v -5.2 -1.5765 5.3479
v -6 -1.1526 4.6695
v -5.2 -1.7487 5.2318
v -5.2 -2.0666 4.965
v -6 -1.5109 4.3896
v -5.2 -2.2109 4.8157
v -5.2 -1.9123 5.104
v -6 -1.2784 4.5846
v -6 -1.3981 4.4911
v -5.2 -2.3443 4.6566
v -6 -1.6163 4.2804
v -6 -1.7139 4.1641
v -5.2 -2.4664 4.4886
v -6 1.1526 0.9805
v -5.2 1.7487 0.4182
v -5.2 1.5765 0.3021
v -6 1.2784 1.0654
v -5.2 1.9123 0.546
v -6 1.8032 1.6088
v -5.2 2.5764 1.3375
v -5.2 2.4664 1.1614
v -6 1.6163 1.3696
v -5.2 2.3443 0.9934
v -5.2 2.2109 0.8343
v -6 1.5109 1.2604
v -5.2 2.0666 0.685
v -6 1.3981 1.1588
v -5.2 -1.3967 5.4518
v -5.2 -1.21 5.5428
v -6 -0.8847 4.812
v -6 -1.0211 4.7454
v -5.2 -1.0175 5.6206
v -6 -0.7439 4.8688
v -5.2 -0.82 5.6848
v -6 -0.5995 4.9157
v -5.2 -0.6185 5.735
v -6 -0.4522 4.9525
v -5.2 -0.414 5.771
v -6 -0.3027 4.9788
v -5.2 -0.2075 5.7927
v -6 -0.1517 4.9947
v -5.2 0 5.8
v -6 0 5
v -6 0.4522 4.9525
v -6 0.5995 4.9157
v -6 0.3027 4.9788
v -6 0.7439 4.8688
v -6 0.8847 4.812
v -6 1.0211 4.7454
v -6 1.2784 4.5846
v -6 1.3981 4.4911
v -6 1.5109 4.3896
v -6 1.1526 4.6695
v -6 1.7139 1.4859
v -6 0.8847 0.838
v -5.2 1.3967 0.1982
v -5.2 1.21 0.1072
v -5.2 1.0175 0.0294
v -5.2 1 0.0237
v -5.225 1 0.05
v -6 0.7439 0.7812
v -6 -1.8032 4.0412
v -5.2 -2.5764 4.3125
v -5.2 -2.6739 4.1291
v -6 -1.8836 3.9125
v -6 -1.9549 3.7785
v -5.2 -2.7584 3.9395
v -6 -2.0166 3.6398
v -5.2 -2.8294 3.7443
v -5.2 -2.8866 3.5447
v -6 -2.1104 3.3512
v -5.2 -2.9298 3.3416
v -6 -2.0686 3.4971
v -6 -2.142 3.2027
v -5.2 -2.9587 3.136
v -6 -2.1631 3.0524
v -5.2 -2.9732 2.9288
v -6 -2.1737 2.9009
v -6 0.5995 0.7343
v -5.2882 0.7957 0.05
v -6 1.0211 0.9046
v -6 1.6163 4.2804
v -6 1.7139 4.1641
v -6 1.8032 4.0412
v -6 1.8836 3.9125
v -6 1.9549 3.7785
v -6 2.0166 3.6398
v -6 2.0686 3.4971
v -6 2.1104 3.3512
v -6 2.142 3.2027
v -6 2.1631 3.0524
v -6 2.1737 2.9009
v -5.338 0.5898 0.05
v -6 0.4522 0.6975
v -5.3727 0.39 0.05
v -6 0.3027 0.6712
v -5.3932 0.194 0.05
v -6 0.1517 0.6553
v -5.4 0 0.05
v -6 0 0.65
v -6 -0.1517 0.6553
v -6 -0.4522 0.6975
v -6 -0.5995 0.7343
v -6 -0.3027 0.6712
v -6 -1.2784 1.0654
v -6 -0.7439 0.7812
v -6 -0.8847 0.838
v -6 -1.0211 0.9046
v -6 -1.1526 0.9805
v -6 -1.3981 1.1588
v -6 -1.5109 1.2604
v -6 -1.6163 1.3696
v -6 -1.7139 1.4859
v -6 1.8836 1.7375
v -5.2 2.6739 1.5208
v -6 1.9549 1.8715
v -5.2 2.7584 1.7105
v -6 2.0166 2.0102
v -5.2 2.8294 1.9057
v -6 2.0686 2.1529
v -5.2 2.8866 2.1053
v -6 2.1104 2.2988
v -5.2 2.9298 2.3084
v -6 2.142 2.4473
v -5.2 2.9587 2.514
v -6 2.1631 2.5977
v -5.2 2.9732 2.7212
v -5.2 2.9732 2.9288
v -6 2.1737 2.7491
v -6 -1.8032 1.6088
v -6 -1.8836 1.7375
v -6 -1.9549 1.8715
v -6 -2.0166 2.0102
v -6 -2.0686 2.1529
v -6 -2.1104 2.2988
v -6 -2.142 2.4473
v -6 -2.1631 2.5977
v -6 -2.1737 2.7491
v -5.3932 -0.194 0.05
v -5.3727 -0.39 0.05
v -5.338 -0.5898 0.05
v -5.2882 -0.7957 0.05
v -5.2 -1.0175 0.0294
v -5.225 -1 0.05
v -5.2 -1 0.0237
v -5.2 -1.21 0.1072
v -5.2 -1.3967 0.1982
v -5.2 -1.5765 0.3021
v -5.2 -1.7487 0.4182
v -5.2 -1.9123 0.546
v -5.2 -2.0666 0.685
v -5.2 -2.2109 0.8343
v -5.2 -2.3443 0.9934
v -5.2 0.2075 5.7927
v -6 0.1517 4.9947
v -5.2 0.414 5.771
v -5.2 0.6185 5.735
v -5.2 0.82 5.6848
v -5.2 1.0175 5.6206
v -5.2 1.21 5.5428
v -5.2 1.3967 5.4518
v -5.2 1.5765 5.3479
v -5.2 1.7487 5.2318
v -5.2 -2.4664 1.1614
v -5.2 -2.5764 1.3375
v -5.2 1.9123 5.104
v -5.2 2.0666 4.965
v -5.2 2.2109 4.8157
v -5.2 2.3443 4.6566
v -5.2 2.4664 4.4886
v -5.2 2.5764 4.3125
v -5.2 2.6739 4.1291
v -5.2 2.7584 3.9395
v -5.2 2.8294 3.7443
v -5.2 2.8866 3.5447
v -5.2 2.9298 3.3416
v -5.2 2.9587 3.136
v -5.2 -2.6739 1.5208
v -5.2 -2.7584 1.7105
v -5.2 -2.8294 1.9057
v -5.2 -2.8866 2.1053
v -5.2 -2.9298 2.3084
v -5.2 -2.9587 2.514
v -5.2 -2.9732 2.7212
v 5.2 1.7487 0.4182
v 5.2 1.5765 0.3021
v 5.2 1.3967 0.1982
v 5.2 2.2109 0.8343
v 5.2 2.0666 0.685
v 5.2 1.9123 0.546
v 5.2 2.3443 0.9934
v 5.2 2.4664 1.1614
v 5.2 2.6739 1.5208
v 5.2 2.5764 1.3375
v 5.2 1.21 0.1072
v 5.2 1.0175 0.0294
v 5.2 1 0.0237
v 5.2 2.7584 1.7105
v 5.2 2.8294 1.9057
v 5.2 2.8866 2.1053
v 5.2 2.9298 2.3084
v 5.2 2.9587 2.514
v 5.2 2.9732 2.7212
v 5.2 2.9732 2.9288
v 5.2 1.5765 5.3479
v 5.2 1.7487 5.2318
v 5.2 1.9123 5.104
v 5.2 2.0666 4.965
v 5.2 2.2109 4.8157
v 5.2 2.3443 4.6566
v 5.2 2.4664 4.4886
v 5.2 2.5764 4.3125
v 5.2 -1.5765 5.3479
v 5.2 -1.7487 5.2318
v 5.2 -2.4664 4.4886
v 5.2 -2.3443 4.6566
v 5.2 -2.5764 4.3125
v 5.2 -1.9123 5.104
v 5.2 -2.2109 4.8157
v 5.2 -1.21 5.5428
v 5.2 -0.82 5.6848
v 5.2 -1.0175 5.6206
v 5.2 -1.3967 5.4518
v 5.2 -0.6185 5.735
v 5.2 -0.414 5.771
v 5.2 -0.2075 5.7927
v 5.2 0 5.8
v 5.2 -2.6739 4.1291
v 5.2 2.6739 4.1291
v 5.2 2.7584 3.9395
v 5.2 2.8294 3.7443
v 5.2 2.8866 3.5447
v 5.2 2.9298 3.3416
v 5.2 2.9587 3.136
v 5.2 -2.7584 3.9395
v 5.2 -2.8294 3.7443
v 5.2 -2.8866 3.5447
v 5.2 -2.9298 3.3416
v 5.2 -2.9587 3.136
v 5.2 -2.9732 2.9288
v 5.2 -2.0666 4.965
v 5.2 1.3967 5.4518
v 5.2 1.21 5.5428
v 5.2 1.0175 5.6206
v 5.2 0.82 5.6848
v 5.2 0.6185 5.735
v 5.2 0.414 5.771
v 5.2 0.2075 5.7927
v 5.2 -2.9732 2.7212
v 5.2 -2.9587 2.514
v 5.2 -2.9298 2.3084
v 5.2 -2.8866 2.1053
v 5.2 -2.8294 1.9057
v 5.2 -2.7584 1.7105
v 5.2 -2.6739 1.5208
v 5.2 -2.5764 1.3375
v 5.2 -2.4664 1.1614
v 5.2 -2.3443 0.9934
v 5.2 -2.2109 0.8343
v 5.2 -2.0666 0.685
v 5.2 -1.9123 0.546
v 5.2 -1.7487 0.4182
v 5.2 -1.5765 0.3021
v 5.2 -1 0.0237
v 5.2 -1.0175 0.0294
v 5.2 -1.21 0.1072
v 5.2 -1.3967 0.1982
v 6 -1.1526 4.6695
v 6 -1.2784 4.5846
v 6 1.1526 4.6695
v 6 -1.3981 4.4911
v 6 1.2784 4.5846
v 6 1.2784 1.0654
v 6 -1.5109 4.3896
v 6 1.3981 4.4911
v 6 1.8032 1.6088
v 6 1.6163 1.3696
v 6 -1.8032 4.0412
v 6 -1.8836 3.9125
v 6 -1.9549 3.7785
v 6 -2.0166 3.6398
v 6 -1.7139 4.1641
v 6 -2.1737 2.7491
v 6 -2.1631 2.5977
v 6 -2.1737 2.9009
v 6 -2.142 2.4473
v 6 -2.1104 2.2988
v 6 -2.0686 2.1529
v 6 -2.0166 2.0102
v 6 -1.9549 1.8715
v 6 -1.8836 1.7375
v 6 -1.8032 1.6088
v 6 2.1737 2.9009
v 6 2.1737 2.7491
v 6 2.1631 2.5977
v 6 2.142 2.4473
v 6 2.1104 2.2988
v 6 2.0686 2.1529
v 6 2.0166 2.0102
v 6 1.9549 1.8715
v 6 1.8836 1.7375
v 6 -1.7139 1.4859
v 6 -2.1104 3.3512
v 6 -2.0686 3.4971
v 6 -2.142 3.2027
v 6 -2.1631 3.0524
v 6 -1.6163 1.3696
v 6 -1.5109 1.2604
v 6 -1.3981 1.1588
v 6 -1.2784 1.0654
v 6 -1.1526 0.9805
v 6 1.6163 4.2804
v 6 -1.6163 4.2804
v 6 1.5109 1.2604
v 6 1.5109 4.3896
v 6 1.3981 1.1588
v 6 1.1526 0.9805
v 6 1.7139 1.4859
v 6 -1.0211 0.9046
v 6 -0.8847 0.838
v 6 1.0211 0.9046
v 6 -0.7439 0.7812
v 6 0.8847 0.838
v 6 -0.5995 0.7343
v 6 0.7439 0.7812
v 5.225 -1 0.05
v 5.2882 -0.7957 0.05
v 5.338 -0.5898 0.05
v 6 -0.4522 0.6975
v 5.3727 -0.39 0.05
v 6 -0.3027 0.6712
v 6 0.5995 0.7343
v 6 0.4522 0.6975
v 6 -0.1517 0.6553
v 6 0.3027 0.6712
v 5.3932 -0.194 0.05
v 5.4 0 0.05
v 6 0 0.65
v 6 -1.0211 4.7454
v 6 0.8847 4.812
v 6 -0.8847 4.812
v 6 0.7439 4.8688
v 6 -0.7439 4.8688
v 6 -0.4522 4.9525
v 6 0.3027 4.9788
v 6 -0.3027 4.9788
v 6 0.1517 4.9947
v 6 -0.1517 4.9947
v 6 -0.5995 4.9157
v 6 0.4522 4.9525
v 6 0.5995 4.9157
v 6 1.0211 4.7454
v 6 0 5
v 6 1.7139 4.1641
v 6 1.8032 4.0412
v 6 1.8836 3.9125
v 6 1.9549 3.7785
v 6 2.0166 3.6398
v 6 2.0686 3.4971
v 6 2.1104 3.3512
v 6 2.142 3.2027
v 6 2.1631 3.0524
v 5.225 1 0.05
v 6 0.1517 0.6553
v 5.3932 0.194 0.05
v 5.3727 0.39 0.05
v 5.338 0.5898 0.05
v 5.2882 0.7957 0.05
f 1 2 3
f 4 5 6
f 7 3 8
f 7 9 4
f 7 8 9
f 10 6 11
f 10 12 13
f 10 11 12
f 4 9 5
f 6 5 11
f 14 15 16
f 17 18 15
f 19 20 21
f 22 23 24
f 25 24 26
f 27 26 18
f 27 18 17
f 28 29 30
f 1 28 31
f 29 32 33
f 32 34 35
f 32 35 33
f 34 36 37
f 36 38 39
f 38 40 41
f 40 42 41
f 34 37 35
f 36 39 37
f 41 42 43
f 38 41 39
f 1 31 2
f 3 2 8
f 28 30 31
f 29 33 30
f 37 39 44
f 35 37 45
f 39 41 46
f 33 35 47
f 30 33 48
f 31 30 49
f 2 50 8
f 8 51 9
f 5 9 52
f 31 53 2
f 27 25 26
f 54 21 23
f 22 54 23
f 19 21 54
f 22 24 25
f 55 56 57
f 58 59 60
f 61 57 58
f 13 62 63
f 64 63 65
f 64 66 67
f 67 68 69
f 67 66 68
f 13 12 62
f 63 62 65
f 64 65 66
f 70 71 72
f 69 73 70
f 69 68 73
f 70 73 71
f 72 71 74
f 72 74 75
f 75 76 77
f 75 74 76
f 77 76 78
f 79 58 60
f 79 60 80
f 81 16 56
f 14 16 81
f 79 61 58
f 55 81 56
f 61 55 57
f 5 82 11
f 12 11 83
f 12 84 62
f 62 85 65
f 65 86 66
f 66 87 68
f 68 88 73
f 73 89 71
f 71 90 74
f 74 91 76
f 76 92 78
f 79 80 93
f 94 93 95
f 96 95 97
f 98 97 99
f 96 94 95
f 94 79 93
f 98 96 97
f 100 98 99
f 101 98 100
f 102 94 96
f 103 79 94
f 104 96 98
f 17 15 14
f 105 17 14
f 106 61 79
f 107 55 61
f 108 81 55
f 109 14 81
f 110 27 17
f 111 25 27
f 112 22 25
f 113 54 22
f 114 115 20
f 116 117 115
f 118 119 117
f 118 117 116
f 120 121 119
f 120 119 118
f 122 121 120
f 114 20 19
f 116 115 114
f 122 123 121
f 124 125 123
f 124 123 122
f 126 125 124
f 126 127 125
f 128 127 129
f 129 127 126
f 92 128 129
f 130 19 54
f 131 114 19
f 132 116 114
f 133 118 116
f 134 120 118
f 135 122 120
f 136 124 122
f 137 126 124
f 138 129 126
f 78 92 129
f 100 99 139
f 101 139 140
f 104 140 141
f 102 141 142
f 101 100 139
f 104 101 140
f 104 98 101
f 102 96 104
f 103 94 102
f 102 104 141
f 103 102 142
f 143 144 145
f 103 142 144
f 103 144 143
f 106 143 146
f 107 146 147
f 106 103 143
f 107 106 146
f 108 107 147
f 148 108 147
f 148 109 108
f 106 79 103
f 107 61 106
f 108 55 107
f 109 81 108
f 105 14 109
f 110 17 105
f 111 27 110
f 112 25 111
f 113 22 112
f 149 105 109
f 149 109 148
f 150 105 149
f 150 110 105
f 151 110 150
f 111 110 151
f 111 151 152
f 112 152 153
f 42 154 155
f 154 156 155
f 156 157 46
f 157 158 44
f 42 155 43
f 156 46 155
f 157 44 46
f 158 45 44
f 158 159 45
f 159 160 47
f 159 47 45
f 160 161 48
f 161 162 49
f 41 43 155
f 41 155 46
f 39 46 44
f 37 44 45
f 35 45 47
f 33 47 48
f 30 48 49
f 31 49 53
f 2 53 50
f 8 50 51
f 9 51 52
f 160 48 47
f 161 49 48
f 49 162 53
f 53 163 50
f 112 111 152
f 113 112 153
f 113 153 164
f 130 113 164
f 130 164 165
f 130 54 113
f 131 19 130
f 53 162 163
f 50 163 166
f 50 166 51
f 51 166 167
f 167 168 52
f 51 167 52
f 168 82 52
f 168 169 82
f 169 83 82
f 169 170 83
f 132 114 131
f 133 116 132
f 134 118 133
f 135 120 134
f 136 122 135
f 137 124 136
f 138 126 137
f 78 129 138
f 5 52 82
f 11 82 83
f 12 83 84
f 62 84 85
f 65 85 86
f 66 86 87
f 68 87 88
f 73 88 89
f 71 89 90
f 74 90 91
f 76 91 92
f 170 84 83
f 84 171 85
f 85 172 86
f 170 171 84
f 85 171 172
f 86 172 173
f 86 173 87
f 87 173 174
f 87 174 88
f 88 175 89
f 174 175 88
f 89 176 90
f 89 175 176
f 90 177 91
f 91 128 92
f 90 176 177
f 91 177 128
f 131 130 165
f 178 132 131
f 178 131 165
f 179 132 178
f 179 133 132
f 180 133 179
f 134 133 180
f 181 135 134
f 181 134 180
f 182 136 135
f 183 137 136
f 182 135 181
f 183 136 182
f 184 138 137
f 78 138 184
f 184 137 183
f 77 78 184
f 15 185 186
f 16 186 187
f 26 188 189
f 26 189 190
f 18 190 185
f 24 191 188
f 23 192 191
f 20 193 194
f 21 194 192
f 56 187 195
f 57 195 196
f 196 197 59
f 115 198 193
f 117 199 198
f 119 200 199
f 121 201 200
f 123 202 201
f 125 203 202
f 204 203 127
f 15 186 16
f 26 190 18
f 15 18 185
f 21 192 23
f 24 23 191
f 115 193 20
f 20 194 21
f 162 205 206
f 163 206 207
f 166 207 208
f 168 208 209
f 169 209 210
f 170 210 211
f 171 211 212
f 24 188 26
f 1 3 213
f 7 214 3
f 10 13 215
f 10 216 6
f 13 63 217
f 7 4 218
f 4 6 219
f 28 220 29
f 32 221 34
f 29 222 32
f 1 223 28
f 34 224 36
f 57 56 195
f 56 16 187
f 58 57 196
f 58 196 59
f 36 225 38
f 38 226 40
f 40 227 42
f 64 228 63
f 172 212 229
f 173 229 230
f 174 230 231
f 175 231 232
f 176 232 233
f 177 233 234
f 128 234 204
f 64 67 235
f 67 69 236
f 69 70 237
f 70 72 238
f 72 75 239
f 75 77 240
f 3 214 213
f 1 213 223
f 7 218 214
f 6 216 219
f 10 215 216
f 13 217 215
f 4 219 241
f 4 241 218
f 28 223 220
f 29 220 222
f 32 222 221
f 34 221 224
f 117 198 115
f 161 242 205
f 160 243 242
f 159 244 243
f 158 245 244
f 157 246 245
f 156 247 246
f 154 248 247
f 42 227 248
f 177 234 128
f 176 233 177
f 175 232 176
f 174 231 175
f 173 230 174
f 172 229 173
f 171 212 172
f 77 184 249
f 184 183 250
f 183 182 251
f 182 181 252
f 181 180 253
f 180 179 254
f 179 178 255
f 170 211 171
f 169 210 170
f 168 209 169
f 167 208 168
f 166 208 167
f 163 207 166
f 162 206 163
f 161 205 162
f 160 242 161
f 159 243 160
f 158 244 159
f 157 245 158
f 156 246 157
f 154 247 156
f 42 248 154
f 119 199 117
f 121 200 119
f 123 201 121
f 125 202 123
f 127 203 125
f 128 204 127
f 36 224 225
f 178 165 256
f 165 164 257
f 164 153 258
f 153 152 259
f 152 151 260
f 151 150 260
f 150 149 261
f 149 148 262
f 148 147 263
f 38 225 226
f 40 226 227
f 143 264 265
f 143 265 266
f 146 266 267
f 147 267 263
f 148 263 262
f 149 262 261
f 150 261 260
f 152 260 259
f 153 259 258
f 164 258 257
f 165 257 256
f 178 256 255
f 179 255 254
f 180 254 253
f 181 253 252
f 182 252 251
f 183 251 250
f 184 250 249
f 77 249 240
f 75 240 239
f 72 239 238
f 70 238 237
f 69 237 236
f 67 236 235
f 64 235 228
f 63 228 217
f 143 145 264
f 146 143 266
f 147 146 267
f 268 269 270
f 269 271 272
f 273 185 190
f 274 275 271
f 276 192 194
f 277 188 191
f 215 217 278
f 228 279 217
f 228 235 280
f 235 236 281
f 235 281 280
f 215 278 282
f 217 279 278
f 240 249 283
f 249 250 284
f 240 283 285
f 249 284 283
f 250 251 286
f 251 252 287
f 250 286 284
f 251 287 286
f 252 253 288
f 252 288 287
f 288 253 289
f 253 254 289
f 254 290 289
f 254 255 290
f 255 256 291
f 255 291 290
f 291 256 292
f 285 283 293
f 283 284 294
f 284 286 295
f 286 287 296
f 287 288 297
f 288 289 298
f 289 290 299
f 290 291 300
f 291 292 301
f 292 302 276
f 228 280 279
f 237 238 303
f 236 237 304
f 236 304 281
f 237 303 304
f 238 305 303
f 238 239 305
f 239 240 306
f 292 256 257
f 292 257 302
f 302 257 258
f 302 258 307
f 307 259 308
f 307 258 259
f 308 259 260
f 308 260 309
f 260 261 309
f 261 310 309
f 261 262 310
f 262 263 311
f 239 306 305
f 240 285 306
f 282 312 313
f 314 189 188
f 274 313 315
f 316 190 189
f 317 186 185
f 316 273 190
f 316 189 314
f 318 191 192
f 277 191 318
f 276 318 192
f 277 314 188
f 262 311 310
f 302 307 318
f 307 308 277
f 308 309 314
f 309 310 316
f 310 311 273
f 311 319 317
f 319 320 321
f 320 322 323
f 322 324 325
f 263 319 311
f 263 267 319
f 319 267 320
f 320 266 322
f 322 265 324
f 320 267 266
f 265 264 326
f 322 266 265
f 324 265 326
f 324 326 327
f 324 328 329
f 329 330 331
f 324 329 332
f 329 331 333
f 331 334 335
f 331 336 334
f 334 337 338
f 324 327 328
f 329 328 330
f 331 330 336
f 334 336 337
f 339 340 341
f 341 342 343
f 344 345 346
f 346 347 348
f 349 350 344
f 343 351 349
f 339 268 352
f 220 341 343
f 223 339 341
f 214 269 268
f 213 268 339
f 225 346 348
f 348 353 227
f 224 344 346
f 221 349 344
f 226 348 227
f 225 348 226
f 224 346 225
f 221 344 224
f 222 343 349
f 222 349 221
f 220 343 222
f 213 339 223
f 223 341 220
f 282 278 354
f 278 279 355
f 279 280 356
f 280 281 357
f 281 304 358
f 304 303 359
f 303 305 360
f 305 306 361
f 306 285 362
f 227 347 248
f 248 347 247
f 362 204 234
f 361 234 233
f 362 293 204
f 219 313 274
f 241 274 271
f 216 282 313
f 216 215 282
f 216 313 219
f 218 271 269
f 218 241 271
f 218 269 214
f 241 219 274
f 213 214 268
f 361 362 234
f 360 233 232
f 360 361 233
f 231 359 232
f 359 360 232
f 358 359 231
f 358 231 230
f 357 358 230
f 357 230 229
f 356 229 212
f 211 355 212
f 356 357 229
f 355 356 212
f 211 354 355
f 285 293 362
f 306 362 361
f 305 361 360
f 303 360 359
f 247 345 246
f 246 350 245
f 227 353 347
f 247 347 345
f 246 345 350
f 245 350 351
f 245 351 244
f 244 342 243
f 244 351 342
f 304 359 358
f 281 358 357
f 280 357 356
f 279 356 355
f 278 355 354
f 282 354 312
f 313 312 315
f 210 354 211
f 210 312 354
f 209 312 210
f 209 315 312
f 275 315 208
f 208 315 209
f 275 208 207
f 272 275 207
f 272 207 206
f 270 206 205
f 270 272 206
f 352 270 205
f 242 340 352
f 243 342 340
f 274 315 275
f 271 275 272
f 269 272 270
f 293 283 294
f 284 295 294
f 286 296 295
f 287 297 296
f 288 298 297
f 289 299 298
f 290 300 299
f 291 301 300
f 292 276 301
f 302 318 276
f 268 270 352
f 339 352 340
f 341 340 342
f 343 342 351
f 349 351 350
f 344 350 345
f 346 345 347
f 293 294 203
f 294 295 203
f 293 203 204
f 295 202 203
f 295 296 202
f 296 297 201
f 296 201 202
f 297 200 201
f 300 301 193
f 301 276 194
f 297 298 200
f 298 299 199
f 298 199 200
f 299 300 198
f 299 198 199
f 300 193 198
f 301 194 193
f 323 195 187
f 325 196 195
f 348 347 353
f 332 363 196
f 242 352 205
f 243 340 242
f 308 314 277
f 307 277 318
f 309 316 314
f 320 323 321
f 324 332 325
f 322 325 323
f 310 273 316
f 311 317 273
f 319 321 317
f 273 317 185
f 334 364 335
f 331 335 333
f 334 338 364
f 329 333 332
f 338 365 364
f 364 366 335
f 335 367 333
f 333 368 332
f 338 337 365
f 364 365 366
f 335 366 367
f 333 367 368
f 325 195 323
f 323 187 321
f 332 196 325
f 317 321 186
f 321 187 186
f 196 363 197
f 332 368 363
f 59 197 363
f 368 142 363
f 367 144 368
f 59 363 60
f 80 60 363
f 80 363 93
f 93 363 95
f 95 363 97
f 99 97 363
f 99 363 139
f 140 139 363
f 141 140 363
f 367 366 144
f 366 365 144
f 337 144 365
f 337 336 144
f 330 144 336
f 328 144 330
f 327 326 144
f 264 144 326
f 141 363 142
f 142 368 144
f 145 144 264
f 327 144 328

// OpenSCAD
// ============================================================================
// UR5 FLANGE ALIGNMENT DOWEL PIN (ISO 9409-1-50 — Ø 6.0 x 12.0 MM)
// Units: millimeters (mm) — Print horizontally (flat on side) for shear strength
// ============================================================================

$fn = 90;

pin_d       = 5.95;  // Nominal Ø 6.0 mm with 0.05 mm radial print clearance
pin_length  = 12.0;  // Standard length for UR5 flange -> Part 1 camera housing
chamfer     = 0.8;   // Lead-in end chamfers

module ur5_alignment_pin(len = pin_length, d = pin_d) {
    // Rotate horizontally so layer lines run along the pin length (prevents shearing)
    translate([-len / 2, 0, d / 2 - 0.15])
        rotate([0, 90, 0])
            difference() {
                union() {
                    cylinder(d1 = d - 2 * chamfer, d2 = d, h = chamfer);
                    translate([0, 0, chamfer])
                        cylinder(d = d, h = len - 2 * chamfer);
                    translate([0, 0, len - chamfer])
                        cylinder(d1 = d, d2 = d - 2 * chamfer, h = chamfer);
                }
                // Tiny flat air-relief channel along side for easy insertion
                translate([d / 2 - 0.2, -1.0, -1])
                    cube([1.0, 2.0, len + 2]);
            }
}

ur5_alignment_pin(pin_length, pin_d);
